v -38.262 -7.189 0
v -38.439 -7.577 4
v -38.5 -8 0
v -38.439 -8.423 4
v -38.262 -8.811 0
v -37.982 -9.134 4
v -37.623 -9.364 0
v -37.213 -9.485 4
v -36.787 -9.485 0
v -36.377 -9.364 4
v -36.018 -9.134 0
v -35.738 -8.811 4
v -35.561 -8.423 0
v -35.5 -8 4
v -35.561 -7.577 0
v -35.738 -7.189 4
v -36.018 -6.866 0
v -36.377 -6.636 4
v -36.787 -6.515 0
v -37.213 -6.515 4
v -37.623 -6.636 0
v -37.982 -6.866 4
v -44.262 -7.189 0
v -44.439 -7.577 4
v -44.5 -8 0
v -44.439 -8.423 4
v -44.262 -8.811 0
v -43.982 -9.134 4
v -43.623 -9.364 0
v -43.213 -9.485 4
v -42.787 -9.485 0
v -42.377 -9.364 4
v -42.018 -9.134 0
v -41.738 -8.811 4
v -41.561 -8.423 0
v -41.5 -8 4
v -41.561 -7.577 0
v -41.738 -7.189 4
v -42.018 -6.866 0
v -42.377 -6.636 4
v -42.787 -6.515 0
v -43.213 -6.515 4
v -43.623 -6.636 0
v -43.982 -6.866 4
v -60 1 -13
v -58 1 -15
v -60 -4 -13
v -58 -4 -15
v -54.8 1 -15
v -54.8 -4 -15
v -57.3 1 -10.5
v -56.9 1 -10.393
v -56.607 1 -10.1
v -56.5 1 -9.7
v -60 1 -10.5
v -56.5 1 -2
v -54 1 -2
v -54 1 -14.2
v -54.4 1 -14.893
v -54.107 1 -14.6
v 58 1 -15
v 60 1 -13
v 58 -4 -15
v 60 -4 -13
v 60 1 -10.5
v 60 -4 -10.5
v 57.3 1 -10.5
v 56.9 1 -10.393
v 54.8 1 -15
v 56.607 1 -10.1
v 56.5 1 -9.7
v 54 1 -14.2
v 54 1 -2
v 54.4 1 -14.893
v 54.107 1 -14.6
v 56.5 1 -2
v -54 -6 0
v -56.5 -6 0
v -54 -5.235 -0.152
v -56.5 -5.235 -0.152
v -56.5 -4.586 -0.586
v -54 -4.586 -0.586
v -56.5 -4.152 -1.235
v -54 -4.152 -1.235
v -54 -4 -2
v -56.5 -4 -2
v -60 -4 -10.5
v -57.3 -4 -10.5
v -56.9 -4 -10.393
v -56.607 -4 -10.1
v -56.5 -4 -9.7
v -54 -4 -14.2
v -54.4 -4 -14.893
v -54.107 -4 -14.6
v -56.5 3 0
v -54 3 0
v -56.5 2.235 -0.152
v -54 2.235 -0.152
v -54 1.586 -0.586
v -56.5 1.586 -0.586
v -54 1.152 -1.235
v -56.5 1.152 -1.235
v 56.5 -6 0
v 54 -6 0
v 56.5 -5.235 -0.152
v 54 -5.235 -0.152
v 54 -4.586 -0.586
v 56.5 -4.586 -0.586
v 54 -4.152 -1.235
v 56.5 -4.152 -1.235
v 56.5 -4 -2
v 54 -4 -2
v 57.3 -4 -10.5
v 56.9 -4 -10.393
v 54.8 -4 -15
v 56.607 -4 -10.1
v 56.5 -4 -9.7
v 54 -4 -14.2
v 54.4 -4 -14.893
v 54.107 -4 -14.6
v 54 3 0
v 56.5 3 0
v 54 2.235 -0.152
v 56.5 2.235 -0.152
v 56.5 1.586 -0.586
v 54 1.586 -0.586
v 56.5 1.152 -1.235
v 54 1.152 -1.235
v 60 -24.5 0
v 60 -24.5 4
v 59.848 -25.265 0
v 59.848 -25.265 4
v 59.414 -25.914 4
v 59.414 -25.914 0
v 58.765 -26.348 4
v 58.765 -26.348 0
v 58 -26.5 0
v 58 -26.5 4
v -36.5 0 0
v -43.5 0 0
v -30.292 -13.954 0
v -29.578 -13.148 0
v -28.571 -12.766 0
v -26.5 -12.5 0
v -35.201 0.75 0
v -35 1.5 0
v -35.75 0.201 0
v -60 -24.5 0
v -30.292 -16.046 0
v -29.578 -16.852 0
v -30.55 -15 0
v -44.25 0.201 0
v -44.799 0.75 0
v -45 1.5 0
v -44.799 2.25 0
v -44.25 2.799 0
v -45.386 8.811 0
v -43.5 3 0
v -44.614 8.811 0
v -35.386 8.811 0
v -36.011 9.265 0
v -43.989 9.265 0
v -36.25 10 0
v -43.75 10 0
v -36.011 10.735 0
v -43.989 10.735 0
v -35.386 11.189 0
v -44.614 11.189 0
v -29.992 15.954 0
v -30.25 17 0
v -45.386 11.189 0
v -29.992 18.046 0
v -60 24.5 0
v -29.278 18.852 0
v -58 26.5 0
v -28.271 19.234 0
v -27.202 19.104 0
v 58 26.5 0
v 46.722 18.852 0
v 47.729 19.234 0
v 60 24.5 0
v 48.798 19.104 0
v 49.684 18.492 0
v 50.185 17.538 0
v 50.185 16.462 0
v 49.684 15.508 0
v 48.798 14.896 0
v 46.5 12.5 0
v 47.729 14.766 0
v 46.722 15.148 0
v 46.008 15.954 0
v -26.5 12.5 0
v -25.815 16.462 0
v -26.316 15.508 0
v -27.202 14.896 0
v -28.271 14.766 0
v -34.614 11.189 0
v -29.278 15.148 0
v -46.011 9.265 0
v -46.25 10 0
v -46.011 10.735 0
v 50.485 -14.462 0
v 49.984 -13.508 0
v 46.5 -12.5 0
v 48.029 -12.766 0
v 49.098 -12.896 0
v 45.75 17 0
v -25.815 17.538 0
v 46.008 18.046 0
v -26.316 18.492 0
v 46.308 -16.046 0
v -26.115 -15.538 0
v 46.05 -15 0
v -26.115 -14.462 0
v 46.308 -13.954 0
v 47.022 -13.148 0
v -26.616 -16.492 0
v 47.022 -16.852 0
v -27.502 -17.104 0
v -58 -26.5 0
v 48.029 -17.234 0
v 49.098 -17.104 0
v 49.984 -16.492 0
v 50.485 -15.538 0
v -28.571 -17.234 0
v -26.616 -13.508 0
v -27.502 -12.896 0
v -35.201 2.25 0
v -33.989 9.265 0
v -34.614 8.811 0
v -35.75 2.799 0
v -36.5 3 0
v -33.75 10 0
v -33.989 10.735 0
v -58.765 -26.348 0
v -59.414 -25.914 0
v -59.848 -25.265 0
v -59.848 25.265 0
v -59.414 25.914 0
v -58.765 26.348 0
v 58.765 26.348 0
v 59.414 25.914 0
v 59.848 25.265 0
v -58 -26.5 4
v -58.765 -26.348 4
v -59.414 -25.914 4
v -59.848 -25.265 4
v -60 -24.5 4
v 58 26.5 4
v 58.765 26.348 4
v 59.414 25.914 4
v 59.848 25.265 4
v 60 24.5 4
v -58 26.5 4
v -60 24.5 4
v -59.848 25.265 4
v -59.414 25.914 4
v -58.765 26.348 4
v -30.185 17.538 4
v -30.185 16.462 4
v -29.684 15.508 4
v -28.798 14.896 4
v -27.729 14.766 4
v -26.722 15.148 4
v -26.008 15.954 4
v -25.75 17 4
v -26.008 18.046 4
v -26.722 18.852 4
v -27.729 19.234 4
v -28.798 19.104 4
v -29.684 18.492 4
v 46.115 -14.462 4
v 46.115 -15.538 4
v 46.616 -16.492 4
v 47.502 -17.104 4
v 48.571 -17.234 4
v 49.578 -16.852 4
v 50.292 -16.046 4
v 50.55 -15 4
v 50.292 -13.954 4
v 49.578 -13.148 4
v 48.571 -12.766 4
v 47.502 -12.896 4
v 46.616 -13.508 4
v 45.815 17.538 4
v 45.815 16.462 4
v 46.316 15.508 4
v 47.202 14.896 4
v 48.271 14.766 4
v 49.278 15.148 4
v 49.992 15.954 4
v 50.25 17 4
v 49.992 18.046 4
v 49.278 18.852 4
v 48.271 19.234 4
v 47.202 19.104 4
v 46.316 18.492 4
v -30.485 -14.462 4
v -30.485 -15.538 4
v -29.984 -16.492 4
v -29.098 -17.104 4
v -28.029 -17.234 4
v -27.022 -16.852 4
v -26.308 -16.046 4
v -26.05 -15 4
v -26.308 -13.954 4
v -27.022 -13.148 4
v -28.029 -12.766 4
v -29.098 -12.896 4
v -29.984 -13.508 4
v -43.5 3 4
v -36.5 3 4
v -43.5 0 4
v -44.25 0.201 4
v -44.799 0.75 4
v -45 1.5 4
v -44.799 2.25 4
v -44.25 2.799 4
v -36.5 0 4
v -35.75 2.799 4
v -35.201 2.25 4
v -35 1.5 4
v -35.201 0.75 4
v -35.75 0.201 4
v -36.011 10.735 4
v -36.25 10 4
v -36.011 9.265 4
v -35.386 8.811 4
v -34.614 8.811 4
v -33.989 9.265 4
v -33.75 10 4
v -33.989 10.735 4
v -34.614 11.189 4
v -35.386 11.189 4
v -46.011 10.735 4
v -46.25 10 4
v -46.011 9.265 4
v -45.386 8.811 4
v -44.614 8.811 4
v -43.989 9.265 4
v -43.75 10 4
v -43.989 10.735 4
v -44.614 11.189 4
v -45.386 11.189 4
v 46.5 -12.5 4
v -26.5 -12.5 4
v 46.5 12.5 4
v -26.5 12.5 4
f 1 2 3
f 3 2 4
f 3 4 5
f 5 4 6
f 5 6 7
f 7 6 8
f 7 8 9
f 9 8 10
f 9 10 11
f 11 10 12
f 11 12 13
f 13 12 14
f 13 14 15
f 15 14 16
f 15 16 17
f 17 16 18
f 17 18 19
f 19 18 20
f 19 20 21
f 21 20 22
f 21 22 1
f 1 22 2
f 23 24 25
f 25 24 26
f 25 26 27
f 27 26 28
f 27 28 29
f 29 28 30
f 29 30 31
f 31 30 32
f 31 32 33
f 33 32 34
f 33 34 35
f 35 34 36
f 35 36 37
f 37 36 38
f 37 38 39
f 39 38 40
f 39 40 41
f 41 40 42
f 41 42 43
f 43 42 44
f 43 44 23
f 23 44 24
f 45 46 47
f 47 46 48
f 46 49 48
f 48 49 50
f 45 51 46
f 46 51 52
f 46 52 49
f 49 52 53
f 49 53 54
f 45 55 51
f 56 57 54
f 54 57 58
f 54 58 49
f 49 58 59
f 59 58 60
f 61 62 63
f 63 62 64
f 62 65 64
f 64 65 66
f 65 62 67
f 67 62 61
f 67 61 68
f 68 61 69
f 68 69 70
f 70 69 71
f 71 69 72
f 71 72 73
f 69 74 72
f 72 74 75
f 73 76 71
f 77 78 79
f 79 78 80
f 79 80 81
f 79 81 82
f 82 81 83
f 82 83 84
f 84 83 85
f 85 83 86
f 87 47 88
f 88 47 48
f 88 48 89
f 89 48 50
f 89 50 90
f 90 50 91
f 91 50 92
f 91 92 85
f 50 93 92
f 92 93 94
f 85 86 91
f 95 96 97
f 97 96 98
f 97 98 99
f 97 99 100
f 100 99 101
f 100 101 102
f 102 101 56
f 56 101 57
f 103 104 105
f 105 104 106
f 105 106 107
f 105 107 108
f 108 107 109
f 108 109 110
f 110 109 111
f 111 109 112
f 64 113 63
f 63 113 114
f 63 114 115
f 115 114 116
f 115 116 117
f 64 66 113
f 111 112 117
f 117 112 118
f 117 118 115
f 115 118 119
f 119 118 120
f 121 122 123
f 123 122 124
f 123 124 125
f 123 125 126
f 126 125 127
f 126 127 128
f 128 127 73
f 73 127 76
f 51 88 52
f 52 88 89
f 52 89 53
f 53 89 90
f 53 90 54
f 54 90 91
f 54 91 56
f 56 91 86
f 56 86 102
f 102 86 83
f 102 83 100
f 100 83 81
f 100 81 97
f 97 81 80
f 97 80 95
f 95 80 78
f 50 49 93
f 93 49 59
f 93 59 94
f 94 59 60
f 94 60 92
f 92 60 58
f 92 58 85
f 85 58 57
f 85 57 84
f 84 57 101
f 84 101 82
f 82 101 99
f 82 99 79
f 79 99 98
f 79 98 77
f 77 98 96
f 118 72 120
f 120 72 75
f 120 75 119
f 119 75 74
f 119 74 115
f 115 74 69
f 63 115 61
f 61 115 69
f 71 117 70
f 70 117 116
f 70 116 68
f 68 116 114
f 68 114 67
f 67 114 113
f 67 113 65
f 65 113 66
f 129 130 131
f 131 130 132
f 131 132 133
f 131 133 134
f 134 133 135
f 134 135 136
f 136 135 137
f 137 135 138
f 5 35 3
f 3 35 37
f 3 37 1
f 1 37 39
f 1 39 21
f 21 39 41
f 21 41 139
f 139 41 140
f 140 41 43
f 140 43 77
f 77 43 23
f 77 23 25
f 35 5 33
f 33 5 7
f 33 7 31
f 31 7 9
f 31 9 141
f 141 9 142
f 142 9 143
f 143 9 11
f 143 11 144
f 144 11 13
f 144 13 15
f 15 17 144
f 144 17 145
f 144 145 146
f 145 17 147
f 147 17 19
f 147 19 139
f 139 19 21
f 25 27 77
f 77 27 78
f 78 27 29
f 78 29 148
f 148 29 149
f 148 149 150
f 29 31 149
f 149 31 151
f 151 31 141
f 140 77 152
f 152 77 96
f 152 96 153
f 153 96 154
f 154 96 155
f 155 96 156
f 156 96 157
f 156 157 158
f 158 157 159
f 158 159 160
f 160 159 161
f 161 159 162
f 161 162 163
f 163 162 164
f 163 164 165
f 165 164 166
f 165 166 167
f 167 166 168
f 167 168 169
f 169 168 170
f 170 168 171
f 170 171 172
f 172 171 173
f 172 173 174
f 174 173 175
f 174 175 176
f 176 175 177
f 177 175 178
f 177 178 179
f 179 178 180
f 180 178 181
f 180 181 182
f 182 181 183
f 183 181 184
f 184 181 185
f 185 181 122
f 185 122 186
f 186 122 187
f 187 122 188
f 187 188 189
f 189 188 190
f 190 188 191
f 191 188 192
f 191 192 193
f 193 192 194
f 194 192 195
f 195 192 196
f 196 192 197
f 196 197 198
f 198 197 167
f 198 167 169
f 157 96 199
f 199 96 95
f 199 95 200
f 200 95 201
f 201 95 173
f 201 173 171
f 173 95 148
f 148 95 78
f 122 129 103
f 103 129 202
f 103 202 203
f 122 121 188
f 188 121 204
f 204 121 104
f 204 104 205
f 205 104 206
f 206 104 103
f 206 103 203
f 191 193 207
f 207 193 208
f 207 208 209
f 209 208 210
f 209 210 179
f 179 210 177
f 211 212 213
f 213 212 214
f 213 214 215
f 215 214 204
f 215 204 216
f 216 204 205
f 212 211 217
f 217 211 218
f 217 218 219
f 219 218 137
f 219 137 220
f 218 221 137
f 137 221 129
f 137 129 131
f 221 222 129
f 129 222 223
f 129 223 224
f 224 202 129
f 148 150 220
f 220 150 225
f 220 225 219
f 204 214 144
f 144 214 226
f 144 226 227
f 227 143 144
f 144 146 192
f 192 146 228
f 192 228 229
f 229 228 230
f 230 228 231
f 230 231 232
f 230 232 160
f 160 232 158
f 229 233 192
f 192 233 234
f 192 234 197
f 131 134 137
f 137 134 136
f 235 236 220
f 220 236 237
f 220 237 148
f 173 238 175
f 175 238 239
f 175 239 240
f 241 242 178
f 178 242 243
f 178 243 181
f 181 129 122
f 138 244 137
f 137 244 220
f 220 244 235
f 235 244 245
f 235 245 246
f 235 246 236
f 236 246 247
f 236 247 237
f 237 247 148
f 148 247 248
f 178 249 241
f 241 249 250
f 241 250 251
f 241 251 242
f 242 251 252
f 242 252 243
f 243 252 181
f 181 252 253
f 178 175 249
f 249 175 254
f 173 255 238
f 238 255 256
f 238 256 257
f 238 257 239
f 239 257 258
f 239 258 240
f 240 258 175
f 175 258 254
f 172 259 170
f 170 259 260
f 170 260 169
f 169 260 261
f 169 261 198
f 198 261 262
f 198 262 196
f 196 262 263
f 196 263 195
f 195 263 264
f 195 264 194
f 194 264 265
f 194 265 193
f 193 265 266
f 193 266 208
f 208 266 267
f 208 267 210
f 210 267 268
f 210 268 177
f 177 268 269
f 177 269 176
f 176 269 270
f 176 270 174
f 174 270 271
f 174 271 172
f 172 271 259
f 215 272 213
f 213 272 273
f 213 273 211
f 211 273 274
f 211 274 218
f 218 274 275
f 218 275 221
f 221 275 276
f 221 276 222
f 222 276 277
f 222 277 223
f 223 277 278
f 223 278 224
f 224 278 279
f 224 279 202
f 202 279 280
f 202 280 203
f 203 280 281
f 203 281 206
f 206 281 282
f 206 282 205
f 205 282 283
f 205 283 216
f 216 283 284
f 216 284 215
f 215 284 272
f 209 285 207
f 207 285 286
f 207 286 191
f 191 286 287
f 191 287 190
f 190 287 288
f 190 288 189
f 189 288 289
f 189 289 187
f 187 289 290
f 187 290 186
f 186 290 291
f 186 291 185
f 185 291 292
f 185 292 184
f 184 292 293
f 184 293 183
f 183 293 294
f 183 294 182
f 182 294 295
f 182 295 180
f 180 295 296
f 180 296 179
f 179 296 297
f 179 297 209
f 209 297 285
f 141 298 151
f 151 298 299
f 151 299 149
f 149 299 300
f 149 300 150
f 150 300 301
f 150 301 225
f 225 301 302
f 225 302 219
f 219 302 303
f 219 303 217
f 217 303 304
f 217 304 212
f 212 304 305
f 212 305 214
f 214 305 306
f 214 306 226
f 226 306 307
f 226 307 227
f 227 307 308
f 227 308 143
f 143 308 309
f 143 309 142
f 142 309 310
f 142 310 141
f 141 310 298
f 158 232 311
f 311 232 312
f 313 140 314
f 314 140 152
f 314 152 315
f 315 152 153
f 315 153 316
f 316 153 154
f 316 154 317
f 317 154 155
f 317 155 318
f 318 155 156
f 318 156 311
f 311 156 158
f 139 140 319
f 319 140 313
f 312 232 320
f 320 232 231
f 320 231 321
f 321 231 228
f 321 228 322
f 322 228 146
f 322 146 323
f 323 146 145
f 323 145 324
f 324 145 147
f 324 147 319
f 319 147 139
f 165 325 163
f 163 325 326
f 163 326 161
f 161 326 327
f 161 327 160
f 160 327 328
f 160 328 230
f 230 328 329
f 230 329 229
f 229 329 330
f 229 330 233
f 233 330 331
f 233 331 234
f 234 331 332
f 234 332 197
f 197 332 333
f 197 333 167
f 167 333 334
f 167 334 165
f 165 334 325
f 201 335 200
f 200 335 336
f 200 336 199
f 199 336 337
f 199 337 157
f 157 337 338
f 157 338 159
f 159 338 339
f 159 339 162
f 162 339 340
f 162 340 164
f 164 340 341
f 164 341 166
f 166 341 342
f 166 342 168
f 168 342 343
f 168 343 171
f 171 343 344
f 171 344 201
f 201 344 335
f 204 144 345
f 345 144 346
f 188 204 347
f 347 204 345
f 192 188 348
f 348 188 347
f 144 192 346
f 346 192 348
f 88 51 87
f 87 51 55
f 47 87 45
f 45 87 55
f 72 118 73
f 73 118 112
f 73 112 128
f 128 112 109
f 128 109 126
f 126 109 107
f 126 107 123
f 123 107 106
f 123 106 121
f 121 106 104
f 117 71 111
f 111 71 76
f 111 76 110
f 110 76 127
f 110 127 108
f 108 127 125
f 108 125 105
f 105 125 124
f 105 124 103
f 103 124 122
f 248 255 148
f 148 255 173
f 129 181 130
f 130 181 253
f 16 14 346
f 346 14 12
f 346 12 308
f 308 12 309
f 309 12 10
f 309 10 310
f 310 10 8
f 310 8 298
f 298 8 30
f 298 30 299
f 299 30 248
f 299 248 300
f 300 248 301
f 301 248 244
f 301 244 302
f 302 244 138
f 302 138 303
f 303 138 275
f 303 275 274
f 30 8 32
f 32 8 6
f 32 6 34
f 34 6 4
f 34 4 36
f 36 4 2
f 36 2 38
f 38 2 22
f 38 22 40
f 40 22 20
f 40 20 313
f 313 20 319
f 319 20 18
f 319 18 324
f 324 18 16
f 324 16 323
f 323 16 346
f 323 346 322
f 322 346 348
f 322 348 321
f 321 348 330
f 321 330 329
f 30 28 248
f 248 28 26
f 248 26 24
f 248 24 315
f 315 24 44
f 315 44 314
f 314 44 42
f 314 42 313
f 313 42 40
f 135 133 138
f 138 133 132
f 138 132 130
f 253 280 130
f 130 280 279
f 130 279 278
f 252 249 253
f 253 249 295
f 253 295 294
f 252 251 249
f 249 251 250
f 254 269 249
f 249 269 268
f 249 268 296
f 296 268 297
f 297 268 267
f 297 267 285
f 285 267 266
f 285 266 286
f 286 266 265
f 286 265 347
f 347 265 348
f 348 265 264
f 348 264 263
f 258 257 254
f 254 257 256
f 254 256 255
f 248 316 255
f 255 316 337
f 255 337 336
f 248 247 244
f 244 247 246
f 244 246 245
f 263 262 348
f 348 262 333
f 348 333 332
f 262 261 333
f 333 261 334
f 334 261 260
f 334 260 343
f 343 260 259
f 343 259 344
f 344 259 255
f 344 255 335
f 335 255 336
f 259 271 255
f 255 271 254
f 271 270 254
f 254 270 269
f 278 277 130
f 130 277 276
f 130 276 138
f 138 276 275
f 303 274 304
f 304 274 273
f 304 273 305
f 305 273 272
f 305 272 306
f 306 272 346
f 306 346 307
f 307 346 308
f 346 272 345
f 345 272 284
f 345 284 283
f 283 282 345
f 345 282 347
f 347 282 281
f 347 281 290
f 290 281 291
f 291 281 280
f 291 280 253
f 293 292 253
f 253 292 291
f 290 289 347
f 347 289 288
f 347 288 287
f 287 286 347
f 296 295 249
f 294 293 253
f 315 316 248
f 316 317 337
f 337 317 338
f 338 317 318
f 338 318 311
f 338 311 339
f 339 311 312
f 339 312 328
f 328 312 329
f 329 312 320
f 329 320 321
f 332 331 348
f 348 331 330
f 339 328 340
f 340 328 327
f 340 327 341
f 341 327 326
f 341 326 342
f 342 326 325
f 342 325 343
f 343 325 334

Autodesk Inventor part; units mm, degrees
ref_plane "YZ Plane" through (0, 0, 0) normal (1, 0, 0) x (0, 1, 0)
ref_plane "XZ Plane" through (0, 0, 0) normal (0, 1, 0) x (-1, 0, 0)
ref_plane "XY Plane" through (0, 0, 0) normal (0, 0, 1) x (1, 0, 0)
sketch "Skizze1" plane through (0, 0, 0) normal (0, 0, 1) x (1, 0, 0)
  line L0 (-60, -26.5) -> (60, -26.5)
  line L1 (60, -26.5) -> (60, 26.5)
  line L2 (60, 26.5) -> (-60, 26.5)
  line L3 (-60, 26.5) -> (-60, -26.5)
  line L4 (-60, -26.5) -> (60, 26.5) construction
  line L5 (60, -26.5) -> (-60, 26.5) construction
  point P0 (0, 0)
  dimension "d0" = 53
  dimension "d1" = 120
extrude "Extrusion1" add sketch "Skizze1" along normal blind 4
sketch "Skizze2" plane through (0, 0, 0) normal (0, 0, -1) x (-1, 0, 0)
  line L0 (-60, -23.5) -> (-60, -26.5) construction
  line L1 (-54, -4) -> (-56.5, -4)
  line L2 (-56.5, -4) -> (-56.5, 1)
  line L3 (-56.5, 1) -> (-54, 1)
  line L4 (-54, 1) -> (-54, -4)
  line L5 (-54, -4) -> (-56.5, 1) construction
  line L6 (-56.5, -4) -> (-54, 1) construction
  line L7 (54, -1) -> (56.5, -1)
  line L8 (56.5, -1) -> (56.5, 4)
  line L9 (56.5, 4) -> (54, 4)
  line L10 (54, 4) -> (54, -1)
  line L11 (54, -1) -> (56.5, 4) construction
  line L12 (56.5, -1) -> (54, 4) construction
  line L13 (60, -26.5) -> (-60, -26.5) projected
  point P0 (0, 0)
  point P1 (-55.25, -1.5)
  point P2 (-55.25, -1.5)
  dimension "d5" = 2.5
  dimension "d6" = 5
  dimension "d68" = 25
extrude "Extrusion2" add sketch "Skizze2" along normal blind 15 contours L1 L2 L3 L4
sketch "Skizze6" plane through (56.5, -4, 0) normal (1, 0, 0) x (0, 0, -1)
  line L0 (15, 5) -> (15, 0) projected
  line L1 (15, 2.5) -> (0, 2.5)
  line L2 (0, -22.5) -> (0, 30.5) projected
  line L3 (10.5, 0) -> (15, 0)
  line L4 (15, 0) -> (15, 5)
  line L5 (15, 5) -> (10.5, 5)
  line L6 (10.5, 5) -> (10.5, 0)
  line L7 (10.5, 0) -> (15, 5) construction
  line L8 (15, 0) -> (10.5, 5) construction
  point P0 (0, 4)
  point P1 (12.75, 2.5)
  point P2 (15, 0)
  dimension "d19" = 4.5
  dimension "d20" = 5
extrude "Extrusion5" add sketch "Skizze6" along normal blind 3.5
mirror "Spiegeln2" about plane through (0, 0, 0) normal (1, 0, 0) of "Extrusion2", "Extrusion5"
sketch "Skizze7" plane through (0, 0, 4) normal (0, 0, 1) x (1, 0, 0)
  line L0 (-26.5, -12.5) -> (46.5, -12.5)
  line L1 (46.5, -12.5) -> (46.5, 12.5)
  line L2 (46.5, 12.5) -> (-26.5, 12.5)
  line L3 (-26.5, 12.5) -> (-26.5, -12.5)
  line L4 (-26.5, -12.5) -> (46.5, 12.5) construction
  line L5 (46.5, -12.5) -> (-26.5, 12.5) construction
  point P0 (0, 0)
  point P1 (10, 0)
  dimension "d23" = 10
  dimension "d24" = 73
  dimension "d25" = 25
extrude "Extrusion6" cut sketch "Skizze7" against normal through all
sketch "Skizze8" plane through (0, 0, 4) normal (0, 0, 1) x (1, 0, 0)
  line L0 (-60, 26.5) -> (-60, -26.5) projected
  line L1 (-60, 0) -> (60, 0)
  line L2 (60, -26.5) -> (60, 26.5) projected
  line L3 (-56, 10) -> (-26.5, 10) construction
  line L4 (-26.5, -12.5) -> (-26.5, 12.5) construction
  circle A0 centre (-45, 10) radius 1.25
  line L5 (-40, 10) -> (-40, 12.8313) construction
  circle A1 centre (-35, 10) radius 1.25
  line L6 (-40, 10) -> (-40, 0) construction
  line L7 (-43.5, 1.5) -> (-36.5, 1.5) construction
  line L8 (-43.5, 0) -> (-36.5, 0)
  line L9 (-36.5, 3) -> (-43.5, 3)
  arc A2 (-43.5, 3) -> (-43.5, 0) centre (-43.5, 1.5) ccw
  arc A3 (-36.5, 0) -> (-36.5, 3) centre (-36.5, 1.5) ccw
  point P0 (0, 0)
  point P1 (-26.5, 0)
  point P2 (-40, 1.5)
  dimension "d28" = 10
  dimension "d29" = 2.5
  dimension "d30" = 10
  dimension "d31" = 7
  dimension "d55" = 13.5
  dimension "d69" = 3
extrude "Extrusion7" cut sketch "Skizze8" against normal blind 10
sketch "Skizze9" plane through (0, 0, 4) normal (0, 0, 1) x (1, 0, 0)
  circle A0 centre (-28, 17) radius 2.25
  line L0 (-26.5, 12.5) -> (46.5, 12.5) projected
  line L1 (46.5, 12.5) -> (-26.5, 12.5) projected
  line L2 (10, 12.5) -> (10, -12.5)
  line L3 (-25.5, 0) -> (45.5, 0)
  circle A1 centre (48, 17) radius 2.25
  circle A2 centre (-28.3, -15) radius 2.25
  line L4 (46.5, -12.5) -> (-26.5, -12.5) projected
  line L5 (-26.5, -12.5) -> (-26.5, 12.5) projected
  circle A3 centre (48.3, -15) radius 2.25
  point P0 (0, 0)
  dimension "d35" = 4.5
  dimension "d37" = 4.5
  dimension "d40" = 2.5
  dimension "d41" = 1.8
  dimension "d42" = 4.5
  dimension "d53" = 1.5
extrude "Extrusion8" cut sketch "Skizze9" against normal blind 10 contours A0 | A1 | A2 | A3
fillet "Rundung1" radius 2 4 edges at (-60, 26.5, 2) (60, 26.5, 2) (-60, -26.5, 2) (60, -26.5, 2)
fillet "Rundung4" radius 0.8 4 edges at (56.5, -1.5, -10.5) (54, -1.5, -15) (-54, -1.5, -15) (-56.5, -1.5, -10.5)
fillet "Rundung5" radius 2 4 edges at (55.25, 1, 0) (55.25, -4, 0) (-55.25, 1, 0) (-55.25, -4, 0)
chamfer "Fase4" distance 2 angle 45 2 edges at (60, -1.5, -15) (-60, -1.5, -15)
sketch "Skizze11" plane through (0, 0, 4) normal (0, 0, 1) x (1, 0, 0)
  line L0 (-36.5, 0) -> (-43.5, 0) construction
  line L1 (-40, 0) -> (-40, -26.5) construction
  line L2 (-58, -26.5) -> (58, -26.5) construction
  circle A0 centre (-43, -8) radius 1.5
  circle A1 centre (-37, -8) radius 1.5
  line L3 (-43, -8) -> (-40, -8) construction
  line L4 (-37, -8) -> (-40, -8) construction
  point P0 (0, 0)
  dimension "d70" = 3
  dimension "d71" = 3
  dimension "d72" = 3
  dimension "d73" = 8
extrude "Extrusion10" cut sketch "Skizze11" against normal blind 10
properties part number "Front"
